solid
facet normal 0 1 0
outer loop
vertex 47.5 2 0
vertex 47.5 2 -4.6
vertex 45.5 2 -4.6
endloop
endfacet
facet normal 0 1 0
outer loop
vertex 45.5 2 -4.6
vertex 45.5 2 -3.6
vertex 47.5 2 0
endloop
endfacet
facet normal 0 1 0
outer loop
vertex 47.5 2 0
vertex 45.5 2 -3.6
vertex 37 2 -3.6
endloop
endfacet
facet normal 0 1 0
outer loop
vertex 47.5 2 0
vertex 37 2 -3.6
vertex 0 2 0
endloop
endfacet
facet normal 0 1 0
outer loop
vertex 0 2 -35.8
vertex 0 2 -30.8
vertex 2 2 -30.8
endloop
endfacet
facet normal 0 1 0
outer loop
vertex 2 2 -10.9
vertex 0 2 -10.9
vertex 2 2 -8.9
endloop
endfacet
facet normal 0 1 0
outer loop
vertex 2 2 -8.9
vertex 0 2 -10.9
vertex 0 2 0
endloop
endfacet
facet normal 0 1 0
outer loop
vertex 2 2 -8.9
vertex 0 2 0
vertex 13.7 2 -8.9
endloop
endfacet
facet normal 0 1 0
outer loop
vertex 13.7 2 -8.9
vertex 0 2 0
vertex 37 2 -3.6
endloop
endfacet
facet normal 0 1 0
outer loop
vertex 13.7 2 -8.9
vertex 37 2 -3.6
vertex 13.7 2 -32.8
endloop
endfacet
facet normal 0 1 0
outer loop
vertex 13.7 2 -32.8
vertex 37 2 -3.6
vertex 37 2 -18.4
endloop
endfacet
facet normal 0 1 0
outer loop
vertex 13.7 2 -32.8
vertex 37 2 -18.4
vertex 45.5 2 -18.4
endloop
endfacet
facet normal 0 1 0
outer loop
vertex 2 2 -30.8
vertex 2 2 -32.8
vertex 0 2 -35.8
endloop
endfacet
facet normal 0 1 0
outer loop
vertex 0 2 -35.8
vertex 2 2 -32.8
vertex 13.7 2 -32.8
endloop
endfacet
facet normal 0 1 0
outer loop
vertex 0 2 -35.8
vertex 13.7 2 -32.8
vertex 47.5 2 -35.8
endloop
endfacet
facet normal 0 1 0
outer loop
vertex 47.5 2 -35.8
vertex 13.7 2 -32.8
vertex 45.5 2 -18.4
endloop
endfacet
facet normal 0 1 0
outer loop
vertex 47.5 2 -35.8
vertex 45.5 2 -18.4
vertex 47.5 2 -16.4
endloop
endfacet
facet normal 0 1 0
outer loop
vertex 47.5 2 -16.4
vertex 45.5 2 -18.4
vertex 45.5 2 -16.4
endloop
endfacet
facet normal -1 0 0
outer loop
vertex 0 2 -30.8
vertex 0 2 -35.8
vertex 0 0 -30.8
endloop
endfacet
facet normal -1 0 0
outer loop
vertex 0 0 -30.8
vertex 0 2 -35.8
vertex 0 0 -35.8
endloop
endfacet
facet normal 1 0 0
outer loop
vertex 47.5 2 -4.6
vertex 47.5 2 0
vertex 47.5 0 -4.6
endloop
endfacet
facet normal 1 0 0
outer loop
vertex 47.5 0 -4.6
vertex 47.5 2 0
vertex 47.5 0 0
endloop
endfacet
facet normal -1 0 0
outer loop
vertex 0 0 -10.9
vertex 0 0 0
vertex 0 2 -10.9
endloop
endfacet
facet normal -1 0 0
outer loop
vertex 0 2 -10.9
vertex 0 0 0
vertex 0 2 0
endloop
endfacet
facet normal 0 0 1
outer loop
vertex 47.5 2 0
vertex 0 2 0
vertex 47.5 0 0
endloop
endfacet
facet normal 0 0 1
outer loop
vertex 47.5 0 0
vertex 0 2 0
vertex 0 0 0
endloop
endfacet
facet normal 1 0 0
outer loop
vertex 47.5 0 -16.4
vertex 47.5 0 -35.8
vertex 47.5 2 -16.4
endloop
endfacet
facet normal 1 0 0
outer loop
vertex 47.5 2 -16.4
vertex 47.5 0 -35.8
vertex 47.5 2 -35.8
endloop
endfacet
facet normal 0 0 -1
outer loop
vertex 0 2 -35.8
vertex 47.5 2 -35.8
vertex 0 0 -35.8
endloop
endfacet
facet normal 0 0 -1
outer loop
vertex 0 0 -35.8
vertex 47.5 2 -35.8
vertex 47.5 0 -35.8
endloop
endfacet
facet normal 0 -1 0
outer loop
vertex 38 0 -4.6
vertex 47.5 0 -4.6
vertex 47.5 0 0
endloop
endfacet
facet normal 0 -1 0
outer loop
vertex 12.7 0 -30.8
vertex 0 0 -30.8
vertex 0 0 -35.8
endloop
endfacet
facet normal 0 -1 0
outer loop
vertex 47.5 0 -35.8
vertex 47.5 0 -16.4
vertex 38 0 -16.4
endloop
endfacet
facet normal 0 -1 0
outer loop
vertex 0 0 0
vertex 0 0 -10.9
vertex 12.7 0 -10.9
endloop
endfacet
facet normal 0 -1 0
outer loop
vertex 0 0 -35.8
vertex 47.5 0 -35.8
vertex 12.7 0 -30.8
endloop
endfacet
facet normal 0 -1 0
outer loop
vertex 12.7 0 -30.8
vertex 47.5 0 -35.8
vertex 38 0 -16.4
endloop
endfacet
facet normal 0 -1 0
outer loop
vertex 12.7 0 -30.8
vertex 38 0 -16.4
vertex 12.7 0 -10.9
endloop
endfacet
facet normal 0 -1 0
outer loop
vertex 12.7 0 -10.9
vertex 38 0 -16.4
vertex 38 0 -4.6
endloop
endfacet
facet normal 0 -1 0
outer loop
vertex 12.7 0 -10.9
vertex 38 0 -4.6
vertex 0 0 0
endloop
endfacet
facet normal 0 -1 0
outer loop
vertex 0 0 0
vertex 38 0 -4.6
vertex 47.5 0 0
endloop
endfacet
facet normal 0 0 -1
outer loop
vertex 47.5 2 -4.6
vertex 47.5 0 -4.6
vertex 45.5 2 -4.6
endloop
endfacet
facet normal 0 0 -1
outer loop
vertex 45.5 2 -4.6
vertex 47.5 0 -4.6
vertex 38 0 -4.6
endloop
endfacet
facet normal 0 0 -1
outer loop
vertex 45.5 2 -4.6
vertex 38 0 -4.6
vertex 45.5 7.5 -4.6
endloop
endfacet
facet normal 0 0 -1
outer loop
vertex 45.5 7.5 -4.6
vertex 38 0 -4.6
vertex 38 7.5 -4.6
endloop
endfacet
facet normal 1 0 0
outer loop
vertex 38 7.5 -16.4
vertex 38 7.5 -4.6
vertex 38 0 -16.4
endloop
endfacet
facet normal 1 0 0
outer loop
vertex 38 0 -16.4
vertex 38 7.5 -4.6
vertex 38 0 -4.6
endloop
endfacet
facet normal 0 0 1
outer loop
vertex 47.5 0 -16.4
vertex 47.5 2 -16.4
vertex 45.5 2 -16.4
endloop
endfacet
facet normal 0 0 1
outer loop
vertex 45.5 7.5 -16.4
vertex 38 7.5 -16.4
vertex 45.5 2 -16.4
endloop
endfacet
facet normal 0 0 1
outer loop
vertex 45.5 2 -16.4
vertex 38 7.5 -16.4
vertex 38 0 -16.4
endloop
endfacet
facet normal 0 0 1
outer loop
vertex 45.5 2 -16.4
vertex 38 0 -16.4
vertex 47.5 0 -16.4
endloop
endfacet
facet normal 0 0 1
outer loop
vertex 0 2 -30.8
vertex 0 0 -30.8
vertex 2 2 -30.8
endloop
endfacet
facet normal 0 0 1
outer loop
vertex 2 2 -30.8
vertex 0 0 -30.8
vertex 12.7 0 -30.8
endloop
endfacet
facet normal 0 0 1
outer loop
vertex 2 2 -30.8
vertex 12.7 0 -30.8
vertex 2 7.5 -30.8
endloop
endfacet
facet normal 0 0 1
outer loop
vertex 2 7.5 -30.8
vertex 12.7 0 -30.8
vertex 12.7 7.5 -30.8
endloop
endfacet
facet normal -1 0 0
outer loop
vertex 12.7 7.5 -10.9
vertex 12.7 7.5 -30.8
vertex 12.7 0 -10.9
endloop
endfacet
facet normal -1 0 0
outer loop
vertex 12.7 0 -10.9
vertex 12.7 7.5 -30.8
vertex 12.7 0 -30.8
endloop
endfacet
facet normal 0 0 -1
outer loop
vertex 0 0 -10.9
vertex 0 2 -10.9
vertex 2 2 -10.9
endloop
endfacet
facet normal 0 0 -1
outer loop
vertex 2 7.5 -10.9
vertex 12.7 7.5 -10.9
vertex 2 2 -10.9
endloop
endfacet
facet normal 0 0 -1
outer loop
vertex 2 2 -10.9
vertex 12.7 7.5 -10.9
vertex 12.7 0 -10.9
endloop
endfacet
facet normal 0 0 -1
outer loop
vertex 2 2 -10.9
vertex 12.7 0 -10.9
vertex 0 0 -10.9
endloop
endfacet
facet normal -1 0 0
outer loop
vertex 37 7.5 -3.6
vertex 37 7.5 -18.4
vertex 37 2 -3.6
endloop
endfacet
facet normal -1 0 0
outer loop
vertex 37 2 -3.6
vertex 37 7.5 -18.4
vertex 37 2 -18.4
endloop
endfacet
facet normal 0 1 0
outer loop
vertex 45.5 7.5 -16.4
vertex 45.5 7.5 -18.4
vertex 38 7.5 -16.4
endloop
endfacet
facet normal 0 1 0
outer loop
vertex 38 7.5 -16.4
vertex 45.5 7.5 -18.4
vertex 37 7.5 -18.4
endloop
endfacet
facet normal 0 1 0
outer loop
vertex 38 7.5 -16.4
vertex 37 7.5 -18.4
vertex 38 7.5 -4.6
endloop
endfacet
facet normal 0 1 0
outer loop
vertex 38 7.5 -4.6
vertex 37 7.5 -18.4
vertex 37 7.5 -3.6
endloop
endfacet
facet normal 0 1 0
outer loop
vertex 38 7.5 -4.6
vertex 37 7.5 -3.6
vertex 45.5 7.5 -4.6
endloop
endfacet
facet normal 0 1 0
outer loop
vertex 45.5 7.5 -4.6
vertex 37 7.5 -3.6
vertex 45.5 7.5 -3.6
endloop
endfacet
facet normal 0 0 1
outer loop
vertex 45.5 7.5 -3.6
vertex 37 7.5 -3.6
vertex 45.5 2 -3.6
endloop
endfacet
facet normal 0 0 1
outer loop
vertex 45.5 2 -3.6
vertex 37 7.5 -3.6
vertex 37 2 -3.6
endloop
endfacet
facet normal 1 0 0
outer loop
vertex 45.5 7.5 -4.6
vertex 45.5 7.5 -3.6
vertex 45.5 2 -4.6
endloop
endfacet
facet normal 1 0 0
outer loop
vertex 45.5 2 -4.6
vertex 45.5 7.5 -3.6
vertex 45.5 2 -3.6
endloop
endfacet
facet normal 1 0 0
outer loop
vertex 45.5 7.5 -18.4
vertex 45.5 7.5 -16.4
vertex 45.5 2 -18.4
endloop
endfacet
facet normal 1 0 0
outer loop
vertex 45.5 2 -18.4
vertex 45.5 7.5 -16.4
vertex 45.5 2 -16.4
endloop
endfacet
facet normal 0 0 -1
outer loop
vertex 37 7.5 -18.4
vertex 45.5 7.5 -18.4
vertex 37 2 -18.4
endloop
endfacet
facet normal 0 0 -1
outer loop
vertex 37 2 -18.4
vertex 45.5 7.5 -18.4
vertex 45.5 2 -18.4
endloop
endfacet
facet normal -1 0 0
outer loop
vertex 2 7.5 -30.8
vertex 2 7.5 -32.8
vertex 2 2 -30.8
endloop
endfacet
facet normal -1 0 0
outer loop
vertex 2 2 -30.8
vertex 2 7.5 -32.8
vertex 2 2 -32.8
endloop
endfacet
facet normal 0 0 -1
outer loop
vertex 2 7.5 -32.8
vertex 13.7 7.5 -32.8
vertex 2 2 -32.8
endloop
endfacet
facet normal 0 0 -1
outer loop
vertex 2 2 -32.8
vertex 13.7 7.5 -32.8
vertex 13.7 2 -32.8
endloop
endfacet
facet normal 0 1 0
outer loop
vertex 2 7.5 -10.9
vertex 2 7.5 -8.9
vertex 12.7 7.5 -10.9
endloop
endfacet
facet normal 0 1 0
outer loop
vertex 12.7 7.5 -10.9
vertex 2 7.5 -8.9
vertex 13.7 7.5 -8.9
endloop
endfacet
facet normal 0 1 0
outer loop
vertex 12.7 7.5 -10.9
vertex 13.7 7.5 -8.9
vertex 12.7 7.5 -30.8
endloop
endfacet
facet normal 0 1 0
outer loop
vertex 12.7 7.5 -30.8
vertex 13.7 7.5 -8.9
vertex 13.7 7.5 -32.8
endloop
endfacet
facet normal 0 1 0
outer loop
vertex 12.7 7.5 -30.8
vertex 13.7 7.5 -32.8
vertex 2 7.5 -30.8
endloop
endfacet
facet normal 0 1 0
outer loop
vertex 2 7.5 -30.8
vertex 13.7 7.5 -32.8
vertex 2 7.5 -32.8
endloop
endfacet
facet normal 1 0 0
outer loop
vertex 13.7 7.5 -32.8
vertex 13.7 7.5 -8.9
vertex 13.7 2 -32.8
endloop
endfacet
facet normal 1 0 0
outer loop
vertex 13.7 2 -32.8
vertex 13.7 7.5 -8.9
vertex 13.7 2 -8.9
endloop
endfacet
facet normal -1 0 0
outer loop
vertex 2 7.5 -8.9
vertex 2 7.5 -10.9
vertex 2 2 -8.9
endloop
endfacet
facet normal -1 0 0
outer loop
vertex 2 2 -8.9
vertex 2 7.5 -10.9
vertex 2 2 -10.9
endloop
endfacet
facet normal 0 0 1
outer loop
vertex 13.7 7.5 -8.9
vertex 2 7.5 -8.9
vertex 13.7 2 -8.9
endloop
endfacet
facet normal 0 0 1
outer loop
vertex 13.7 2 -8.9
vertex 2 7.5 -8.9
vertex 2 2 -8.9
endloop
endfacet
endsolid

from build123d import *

# Parameters (mm, degrees)
ESQUISSE1_W             = 47.5
ESQUISSE1_H             = 35.8
BOSS_EXTRU_1_DEPTH      = 2
ESQUISSE2_W             = 9.5
ESQUISSE2_H             = 11.8
ENL_V_MAT_EXTRU_1_DEPTH = 10
ESQUISSE3_W             = 12.7
ESQUISSE3_H             = 19.9
ENL_V_MAT_EXTRU_2_DEPTH = 10
ESQUISSE5_W             = 1
ESQUISSE5_H             = 11.8
BOSS_EXTRU_2_DEPTH      = 5.5
ESQUISSE6_W             = 8.5
ESQUISSE6_H             = 1
BOSS_EXTRU_3_DEPTH      = 5.5
ESQUISSE7_W             = 8.5
ESQUISSE7_H             = 2
BOSS_EXTRU_4_DEPTH      = 5.5
ESQUISSE8_W             = 10.7
ESQUISSE8_H             = 2
BOSS_EXTRU_5_DEPTH      = 5.5
ESQUISSE9_W             = 1
ESQUISSE9_H             = 21.9
BOSS_EXTRU_6_DEPTH      = 5.5
ESQUISSE11_W            = 11.7
ESQUISSE11_H            = 2
BOSS_EXTRU_7_DEPTH      = 5.5


with BuildPart() as part:
    # Esquisse1 → Boss.-Extru.1 (new body)
    with BuildSketch(Plane(origin=(0, 0, 0), x_dir=(1, 0, 0), z_dir=(0, 1, 0))):
        with Locations((23.75, 17.9)):
            Rectangle(ESQUISSE1_W, ESQUISSE1_H)
    extrude(amount=BOSS_EXTRU_1_DEPTH)

    # Esquisse2 → Enlèv. mat.-Extru.1 (cut)
    with BuildSketch(Plane(origin=(0, 2, 0), x_dir=(1, 0, 0), z_dir=(0, 1, 0))):
        with Locations((42.75, 10.5)):
            Rectangle(ESQUISSE2_W, ESQUISSE2_H)
    extrude(amount=-ENL_V_MAT_EXTRU_1_DEPTH, mode=Mode.SUBTRACT)

    # Esquisse3 → Enlèv. mat.-Extru.2 (cut)
    with BuildSketch(Plane(origin=(0, 2, 0), x_dir=(1, 0, 0), z_dir=(0, 1, 0))):
        with Locations((6.35, 20.85)):
            Rectangle(ESQUISSE3_W, ESQUISSE3_H)
    extrude(amount=-ENL_V_MAT_EXTRU_2_DEPTH, mode=Mode.SUBTRACT)

    # Esquisse5 → Boss.-Extru.2 (add)
    with BuildSketch(Plane(origin=(0, 2, 0), x_dir=(1, 0, 0), z_dir=(0, 1, 0))):
        with Locations((37.5, 10.5)):
            Rectangle(ESQUISSE5_W, ESQUISSE5_H)
    extrude(amount=BOSS_EXTRU_2_DEPTH)

    # Esquisse6 → Boss.-Extru.3 (add)
    with BuildSketch(Plane(origin=(0, 2, 0), x_dir=(1, 0, 0), z_dir=(0, 1, 0))):
        with Locations((41.25, 4.1)):
            Rectangle(ESQUISSE6_W, ESQUISSE6_H)
    extrude(amount=BOSS_EXTRU_3_DEPTH)

    # Esquisse7 → Boss.-Extru.4 (add)
    with BuildSketch(Plane(origin=(0, 2, 0), x_dir=(1, 0, 0), z_dir=(0, 1, 0))):
        with Locations((41.25, 17.4)):
            Rectangle(ESQUISSE7_W, ESQUISSE7_H)
    extrude(amount=BOSS_EXTRU_4_DEPTH)

    # Esquisse8 → Boss.-Extru.5 (add)
    with BuildSketch(Plane(origin=(0, 2, 0), x_dir=(1, 0, 0), z_dir=(0, 1, 0))):
        with Locations((7.35, 31.8)):
            Rectangle(ESQUISSE8_W, ESQUISSE8_H)
    extrude(amount=BOSS_EXTRU_5_DEPTH)

    # Esquisse9 → Boss.-Extru.6 (add)
    with BuildSketch(Plane(origin=(0, 2, 0), x_dir=(1, 0, 0), z_dir=(0, 1, 0))):
        with Locations((13.2, 21.85)):
            Rectangle(ESQUISSE9_W, ESQUISSE9_H)
    extrude(amount=BOSS_EXTRU_6_DEPTH)

    # Esquisse11 → Boss.-Extru.7 (add)
    with BuildSketch(Plane(origin=(0, 2, 0), x_dir=(1, 0, 0), z_dir=(0, 1, 0))):
        with Locations((7.85, 9.9)):
            Rectangle(ESQUISSE11_W, ESQUISSE11_H)
    extrude(amount=BOSS_EXTRU_7_DEPTH)


solid = part.part
